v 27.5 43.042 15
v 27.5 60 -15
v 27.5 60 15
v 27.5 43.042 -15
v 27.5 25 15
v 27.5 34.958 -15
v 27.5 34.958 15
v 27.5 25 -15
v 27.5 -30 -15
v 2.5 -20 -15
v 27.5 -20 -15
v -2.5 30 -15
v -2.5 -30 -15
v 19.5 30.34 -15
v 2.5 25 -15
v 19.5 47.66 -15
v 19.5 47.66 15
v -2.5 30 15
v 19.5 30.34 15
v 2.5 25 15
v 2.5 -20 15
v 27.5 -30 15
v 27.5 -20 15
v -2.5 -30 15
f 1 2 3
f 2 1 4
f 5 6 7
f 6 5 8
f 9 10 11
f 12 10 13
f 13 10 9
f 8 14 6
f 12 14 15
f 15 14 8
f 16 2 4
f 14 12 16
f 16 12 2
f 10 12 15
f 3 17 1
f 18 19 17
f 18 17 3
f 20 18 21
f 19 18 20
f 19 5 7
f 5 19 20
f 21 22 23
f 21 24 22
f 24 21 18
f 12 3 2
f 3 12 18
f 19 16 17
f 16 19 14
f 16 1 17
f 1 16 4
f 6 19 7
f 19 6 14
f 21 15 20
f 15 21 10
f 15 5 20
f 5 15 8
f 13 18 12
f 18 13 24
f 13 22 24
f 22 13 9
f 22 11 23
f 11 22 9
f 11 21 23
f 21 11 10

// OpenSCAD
// "front" refers to the side facing inside the room
// "back" refers to the side facing outside the room
// "top" refers to the top of the door

// door
door_depth  = 45;

// top
top_height  = 5;

// front
front_depth = 5;

// back  
back_depth  = 10;
    
// module
module_depth   = door_depth + front_depth + back_depth;
module_height   = 30;
module_width    = 30;

module corner_piece(side) {
    intersection() {
        cube([side, side, side], center=true);
        new_side = sqrt(pow(side, 2) + pow(side, 2));
        translate([-side / 2, 0, -side / 2]) {
            rotate([0, 45, 0]) { 
                cube([new_side, new_side, new_side], 
                    center=true); 
            }
        }
    }
}

module top_piece() {
    cube([top_height, module_depth, module_width], 
                  center=true);
}

module front_piece() {
    
    
   cube([module_height - top_height, 
            front_depth, 
            module_width],
            center=true);
    
    difference() {
        translate([-top_height / 2, module_height / 2 + front_depth / 2, 0]) {
            rotate([-90, 0, 90]) { 
                corner_piece(module_height);
            }
        }
        
        translate([module_height / 4 + 2, module_height / 4 + 4, 0]) {
            cylinder(50, r=module_height / 3, $fn=3, center=true);
        }
    }
}
    
module back_piece() {
    cube([module_height - top_height, back_depth,
                   module_width],
                   center=true);
}

union() {
    top_piece();
    
    translate([module_height / 2, 
               module_depth / 2 - front_depth / 2, 0]) {
        front_piece(); 
    }
    
    translate([module_height / 2, 
               - module_depth / 2 + back_depth / 2, 0]) {
        back_piece();
    }
}
